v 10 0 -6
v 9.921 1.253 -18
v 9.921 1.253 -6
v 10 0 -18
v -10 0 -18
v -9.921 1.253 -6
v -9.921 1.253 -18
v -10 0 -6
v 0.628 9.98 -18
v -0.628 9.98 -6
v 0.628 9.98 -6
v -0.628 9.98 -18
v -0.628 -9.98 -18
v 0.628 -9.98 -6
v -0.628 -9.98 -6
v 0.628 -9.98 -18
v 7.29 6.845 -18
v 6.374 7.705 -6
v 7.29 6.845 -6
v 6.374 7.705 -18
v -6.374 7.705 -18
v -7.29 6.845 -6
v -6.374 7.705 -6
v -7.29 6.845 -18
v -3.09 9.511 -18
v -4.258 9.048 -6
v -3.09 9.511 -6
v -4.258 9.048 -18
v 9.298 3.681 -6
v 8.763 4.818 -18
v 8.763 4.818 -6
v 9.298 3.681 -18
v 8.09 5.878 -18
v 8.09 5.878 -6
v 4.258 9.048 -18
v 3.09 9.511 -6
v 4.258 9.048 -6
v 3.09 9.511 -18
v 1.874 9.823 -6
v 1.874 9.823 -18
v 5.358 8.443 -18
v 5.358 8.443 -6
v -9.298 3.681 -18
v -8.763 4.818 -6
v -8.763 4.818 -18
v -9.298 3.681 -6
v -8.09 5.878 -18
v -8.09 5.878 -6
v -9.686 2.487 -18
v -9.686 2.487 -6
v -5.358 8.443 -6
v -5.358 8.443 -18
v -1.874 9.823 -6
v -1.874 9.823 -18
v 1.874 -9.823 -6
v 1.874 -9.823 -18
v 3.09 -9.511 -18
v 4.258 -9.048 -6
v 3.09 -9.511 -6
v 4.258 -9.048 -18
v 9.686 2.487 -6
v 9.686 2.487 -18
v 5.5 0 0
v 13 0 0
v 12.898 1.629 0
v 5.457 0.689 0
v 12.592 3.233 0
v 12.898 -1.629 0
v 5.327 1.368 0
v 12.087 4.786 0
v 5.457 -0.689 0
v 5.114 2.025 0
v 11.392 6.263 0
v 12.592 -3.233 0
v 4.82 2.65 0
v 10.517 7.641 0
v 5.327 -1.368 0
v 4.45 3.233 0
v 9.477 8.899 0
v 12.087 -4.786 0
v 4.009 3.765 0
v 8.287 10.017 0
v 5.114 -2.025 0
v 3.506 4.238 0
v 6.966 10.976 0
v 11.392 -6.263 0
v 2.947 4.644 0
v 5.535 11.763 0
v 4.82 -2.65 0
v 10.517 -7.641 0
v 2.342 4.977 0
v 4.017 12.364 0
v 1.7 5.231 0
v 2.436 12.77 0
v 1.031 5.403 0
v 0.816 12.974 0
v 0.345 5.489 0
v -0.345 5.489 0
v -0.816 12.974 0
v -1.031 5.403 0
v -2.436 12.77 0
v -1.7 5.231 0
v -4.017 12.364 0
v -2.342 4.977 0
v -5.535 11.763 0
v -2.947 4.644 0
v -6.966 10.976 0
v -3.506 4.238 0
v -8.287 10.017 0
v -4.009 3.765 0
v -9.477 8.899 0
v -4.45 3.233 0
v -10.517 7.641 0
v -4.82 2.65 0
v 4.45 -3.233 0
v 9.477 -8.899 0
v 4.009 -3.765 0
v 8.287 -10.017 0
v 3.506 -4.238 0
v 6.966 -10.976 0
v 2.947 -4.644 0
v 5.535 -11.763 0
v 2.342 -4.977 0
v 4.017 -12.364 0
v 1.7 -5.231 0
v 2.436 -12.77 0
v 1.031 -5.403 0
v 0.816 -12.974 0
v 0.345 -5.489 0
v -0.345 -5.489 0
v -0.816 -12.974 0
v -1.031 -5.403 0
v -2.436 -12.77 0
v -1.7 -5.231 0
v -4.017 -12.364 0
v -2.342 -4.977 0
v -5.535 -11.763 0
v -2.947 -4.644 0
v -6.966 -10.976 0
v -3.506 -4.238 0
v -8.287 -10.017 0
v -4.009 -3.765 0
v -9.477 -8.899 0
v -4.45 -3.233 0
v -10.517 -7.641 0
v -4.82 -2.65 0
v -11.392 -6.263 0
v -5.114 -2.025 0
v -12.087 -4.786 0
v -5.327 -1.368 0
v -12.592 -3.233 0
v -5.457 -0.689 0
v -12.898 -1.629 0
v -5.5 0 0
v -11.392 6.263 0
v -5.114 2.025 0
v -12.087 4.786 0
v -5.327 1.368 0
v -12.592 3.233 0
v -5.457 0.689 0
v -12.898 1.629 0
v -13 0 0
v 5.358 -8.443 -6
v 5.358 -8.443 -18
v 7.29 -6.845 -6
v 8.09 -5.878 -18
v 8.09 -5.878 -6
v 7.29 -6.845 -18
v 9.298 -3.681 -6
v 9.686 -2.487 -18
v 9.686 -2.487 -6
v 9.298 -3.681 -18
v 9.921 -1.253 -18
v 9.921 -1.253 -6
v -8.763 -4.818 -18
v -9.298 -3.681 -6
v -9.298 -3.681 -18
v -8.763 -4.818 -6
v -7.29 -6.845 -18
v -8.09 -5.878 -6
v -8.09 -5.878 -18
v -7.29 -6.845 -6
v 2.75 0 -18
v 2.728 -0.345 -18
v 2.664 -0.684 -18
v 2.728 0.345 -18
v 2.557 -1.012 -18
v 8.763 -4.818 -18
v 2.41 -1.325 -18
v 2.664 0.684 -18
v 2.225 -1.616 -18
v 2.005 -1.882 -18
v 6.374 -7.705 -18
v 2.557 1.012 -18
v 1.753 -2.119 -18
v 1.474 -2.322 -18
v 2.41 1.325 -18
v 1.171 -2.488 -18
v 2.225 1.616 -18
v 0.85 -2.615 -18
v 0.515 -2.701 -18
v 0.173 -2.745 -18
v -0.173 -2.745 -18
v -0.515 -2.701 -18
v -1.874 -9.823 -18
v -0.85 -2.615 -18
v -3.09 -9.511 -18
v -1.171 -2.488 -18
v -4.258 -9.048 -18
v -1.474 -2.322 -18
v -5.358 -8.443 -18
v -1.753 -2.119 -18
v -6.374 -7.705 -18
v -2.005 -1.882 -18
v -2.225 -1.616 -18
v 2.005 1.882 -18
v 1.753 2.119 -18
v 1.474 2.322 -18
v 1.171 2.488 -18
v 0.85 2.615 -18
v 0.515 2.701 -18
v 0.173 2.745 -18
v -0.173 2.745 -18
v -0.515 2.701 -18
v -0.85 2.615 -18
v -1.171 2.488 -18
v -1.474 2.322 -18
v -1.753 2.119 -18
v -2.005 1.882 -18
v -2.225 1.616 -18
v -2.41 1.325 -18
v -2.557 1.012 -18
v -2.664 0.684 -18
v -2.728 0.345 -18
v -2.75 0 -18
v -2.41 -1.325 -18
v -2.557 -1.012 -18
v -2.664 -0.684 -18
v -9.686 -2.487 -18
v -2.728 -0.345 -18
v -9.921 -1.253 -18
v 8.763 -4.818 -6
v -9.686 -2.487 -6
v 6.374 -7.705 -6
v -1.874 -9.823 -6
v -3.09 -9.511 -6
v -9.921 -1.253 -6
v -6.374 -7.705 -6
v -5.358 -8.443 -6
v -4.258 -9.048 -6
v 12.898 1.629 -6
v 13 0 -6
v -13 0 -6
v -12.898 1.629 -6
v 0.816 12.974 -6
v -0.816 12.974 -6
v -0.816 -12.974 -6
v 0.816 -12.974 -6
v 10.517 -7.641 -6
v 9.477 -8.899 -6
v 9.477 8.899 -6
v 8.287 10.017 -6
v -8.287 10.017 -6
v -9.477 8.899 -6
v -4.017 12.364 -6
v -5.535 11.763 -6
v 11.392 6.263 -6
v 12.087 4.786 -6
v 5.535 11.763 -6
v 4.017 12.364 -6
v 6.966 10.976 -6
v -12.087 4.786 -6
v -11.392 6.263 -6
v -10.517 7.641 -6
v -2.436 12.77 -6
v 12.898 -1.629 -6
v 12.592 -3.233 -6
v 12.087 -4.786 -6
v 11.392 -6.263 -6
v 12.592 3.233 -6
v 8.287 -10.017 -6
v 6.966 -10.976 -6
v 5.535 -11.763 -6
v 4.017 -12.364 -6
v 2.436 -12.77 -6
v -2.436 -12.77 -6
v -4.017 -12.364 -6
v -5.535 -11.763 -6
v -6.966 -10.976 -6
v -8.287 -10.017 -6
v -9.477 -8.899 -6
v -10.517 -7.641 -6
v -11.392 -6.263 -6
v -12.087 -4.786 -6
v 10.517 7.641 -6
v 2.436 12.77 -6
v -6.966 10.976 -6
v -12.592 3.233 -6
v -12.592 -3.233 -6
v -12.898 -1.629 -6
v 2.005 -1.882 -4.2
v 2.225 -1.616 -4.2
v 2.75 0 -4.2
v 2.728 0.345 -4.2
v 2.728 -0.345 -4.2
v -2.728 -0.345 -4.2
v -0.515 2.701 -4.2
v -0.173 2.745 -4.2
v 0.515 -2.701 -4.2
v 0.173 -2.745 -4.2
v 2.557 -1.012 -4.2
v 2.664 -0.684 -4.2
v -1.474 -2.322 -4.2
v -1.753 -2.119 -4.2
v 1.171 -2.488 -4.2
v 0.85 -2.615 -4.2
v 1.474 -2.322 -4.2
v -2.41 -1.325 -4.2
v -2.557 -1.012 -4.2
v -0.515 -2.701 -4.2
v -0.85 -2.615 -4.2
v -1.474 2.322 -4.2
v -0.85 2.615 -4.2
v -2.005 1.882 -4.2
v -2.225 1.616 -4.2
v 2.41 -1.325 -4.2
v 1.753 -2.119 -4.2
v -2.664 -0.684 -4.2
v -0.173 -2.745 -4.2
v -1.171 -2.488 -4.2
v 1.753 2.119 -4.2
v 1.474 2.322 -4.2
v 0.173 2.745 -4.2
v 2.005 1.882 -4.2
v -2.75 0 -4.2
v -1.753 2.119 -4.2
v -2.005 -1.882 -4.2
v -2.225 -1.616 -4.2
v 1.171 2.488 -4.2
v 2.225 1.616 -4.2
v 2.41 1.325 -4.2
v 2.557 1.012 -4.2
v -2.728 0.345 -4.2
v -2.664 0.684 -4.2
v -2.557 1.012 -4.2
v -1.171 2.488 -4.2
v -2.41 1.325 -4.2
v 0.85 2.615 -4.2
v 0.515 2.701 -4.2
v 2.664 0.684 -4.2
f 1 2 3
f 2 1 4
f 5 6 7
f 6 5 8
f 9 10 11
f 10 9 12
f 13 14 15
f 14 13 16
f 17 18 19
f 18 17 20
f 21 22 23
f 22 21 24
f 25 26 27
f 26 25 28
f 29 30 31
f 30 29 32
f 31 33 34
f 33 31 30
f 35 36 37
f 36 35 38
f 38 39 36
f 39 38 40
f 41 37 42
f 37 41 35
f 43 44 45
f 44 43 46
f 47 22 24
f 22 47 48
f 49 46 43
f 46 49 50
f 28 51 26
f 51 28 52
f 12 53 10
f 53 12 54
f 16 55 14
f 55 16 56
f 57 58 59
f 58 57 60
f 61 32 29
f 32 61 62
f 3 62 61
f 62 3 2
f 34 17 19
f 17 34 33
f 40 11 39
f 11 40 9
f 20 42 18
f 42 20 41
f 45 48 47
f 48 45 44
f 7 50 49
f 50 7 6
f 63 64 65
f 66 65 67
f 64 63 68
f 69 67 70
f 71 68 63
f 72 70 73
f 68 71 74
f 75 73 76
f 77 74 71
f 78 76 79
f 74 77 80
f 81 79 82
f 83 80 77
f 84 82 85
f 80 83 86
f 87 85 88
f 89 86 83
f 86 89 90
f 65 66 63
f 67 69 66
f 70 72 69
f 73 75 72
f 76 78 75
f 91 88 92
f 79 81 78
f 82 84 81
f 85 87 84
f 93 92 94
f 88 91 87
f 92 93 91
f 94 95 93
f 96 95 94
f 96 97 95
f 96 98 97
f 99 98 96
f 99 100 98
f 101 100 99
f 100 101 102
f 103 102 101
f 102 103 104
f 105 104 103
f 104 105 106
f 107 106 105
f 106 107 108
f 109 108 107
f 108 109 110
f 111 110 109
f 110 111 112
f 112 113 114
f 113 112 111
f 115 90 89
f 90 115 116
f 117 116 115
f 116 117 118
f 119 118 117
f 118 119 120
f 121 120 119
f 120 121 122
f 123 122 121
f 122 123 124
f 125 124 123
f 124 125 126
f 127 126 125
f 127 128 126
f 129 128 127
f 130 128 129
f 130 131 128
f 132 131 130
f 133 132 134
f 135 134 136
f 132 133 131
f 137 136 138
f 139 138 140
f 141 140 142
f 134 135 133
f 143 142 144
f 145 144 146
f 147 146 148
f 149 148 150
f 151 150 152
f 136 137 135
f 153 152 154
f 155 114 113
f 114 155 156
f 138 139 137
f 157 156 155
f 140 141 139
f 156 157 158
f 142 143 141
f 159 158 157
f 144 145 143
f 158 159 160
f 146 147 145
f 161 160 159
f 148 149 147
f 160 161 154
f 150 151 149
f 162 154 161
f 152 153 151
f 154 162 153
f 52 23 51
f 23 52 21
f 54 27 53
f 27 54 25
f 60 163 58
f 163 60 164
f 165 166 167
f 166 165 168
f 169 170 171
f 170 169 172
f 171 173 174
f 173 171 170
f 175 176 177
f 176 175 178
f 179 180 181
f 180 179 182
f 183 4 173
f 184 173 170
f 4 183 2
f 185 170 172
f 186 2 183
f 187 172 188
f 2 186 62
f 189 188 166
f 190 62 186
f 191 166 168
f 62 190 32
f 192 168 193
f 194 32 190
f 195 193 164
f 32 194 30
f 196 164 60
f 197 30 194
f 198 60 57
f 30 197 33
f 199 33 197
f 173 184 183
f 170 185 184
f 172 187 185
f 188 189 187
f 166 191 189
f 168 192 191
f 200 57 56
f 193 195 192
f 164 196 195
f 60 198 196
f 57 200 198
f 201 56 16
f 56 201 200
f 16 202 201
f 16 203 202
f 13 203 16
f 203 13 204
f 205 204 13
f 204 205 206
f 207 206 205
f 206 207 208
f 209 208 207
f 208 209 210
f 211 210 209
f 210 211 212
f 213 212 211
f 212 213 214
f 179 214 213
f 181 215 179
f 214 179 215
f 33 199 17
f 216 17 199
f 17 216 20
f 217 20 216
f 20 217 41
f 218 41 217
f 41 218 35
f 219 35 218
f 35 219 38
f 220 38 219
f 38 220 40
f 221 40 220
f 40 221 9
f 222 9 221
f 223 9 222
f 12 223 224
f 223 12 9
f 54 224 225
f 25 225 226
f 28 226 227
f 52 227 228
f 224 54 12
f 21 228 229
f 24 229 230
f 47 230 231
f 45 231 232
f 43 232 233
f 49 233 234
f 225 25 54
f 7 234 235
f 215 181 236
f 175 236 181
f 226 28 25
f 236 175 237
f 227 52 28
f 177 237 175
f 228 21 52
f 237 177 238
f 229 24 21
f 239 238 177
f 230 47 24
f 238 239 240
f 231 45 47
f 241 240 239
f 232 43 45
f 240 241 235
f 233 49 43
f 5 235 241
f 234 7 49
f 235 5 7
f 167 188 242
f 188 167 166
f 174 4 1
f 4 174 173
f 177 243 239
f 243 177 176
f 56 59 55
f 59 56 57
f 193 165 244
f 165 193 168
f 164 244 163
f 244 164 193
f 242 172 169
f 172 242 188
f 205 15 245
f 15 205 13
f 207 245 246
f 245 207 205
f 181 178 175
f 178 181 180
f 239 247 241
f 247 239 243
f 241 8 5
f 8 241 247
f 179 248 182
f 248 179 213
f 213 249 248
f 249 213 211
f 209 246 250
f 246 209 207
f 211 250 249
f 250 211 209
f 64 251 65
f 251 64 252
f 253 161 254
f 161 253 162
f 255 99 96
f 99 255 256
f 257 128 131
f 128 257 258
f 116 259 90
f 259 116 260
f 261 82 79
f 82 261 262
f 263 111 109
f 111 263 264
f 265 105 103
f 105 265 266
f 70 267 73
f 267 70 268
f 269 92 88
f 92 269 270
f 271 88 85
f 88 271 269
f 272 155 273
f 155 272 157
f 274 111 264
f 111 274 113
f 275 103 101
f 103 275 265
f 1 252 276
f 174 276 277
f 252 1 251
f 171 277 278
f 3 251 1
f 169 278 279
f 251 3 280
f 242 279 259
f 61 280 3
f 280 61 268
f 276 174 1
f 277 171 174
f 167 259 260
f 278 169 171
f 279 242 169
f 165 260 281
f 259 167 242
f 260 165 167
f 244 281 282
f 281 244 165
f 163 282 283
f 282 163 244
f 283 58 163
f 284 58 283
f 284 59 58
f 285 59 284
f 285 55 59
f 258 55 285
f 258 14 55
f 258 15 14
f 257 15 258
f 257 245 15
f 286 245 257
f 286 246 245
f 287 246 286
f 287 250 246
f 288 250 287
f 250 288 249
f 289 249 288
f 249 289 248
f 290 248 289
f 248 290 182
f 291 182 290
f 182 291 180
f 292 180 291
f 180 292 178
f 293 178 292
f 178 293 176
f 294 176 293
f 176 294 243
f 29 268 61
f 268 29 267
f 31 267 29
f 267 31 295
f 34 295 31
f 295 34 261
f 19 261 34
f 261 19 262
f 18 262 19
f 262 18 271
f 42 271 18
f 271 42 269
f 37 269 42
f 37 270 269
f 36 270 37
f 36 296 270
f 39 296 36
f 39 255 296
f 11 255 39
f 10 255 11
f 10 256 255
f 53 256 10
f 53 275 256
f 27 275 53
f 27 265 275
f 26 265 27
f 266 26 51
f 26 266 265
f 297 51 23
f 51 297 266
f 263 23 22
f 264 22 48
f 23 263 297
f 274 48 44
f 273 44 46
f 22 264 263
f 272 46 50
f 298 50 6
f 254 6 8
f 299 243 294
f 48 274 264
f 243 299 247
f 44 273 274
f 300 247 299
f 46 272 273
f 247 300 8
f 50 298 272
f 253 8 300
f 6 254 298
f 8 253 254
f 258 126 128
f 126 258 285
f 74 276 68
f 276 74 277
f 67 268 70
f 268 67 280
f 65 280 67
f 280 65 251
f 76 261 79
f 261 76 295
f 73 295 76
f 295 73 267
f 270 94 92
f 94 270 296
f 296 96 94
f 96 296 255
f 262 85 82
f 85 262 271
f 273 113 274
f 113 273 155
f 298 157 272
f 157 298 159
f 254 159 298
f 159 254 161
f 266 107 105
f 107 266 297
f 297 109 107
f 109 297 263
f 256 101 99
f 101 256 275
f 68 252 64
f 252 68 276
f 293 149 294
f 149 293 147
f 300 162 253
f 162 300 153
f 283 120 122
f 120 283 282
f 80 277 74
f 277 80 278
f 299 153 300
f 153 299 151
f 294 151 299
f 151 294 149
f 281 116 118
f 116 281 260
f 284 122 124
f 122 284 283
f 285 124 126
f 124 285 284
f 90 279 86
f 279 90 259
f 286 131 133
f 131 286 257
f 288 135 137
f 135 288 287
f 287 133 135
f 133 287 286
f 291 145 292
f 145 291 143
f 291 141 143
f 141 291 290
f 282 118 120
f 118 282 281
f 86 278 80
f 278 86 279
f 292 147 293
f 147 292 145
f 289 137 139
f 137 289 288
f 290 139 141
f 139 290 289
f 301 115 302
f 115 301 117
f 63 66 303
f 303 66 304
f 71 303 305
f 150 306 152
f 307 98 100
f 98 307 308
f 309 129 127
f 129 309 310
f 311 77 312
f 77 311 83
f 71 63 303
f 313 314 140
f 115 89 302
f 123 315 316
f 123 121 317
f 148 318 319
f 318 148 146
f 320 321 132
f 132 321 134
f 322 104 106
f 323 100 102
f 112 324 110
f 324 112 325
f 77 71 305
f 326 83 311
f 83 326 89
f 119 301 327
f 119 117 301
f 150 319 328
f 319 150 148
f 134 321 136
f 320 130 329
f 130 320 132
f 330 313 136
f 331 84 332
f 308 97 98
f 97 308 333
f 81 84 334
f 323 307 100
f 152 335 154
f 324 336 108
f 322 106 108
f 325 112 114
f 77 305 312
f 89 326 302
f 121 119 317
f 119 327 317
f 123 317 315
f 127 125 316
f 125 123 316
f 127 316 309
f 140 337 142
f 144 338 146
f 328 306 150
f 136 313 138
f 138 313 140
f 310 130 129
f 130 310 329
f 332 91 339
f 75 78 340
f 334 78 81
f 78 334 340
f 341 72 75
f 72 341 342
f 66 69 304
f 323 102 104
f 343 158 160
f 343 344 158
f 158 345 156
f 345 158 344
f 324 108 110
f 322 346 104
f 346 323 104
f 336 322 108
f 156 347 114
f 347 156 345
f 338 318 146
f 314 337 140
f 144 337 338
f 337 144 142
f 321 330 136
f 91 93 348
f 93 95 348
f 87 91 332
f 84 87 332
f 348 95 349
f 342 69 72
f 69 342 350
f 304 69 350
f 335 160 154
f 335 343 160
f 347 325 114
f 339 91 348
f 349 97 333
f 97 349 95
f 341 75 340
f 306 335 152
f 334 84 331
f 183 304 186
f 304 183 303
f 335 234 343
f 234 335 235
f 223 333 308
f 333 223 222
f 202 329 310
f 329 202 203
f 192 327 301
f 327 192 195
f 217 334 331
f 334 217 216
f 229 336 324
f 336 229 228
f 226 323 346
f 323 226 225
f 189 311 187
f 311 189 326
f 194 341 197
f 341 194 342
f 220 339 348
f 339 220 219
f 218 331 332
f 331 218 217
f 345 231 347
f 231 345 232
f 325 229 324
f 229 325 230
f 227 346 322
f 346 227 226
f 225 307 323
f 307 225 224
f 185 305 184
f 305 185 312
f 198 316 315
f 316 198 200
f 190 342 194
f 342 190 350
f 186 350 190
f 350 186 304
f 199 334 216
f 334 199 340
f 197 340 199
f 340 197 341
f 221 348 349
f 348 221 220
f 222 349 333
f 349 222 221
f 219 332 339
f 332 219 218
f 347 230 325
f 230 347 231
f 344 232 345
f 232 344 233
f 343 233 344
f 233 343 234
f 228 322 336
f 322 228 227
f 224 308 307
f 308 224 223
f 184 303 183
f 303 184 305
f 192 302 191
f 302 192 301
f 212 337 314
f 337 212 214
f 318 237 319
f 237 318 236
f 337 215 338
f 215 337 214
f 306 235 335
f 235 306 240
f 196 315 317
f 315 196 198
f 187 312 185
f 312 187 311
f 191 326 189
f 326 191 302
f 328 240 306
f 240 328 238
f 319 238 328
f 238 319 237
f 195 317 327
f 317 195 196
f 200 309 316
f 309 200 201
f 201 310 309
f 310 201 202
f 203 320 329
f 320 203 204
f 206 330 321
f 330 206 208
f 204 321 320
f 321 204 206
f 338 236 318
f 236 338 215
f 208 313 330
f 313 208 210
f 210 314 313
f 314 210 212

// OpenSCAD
$fn = 50;


difference() {
	union() {
		translate(v = [0, 0, -18.0000000000]) {
			cylinder(h = 18, r = 10.0000000000);
		}
		translate(v = [0, 0, -6.0000000000]) {
			cylinder(h = 6, r = 13.0000000000);
		}
	}
	union() {
		translate(v = [0, 0, 0]) {
			rotate(a = [0, 0, 0]) {
				difference() {
					union() {
						#translate(v = [0, 0, -18.0000000000]) {
							cylinder(h = 18, r = 2.2500000000);
						}
						#translate(v = [0, 0, -4.2000000000]) {
							cylinder(h = 4.2000000000, r = 10.0000000000, r1 = 2.7500000000, r2 = 5.5000000000);
						}
						#translate(v = [0, 0, -18.0000000000]) {
							cylinder(h = 18, r = 2.7500000000);
						}
						#translate(v = [0, 0, -18.0000000000]) {
							cylinder(h = 18, r = 2.2500000000);
						}
					}
					union();
				}
			}
		}
	}
}
